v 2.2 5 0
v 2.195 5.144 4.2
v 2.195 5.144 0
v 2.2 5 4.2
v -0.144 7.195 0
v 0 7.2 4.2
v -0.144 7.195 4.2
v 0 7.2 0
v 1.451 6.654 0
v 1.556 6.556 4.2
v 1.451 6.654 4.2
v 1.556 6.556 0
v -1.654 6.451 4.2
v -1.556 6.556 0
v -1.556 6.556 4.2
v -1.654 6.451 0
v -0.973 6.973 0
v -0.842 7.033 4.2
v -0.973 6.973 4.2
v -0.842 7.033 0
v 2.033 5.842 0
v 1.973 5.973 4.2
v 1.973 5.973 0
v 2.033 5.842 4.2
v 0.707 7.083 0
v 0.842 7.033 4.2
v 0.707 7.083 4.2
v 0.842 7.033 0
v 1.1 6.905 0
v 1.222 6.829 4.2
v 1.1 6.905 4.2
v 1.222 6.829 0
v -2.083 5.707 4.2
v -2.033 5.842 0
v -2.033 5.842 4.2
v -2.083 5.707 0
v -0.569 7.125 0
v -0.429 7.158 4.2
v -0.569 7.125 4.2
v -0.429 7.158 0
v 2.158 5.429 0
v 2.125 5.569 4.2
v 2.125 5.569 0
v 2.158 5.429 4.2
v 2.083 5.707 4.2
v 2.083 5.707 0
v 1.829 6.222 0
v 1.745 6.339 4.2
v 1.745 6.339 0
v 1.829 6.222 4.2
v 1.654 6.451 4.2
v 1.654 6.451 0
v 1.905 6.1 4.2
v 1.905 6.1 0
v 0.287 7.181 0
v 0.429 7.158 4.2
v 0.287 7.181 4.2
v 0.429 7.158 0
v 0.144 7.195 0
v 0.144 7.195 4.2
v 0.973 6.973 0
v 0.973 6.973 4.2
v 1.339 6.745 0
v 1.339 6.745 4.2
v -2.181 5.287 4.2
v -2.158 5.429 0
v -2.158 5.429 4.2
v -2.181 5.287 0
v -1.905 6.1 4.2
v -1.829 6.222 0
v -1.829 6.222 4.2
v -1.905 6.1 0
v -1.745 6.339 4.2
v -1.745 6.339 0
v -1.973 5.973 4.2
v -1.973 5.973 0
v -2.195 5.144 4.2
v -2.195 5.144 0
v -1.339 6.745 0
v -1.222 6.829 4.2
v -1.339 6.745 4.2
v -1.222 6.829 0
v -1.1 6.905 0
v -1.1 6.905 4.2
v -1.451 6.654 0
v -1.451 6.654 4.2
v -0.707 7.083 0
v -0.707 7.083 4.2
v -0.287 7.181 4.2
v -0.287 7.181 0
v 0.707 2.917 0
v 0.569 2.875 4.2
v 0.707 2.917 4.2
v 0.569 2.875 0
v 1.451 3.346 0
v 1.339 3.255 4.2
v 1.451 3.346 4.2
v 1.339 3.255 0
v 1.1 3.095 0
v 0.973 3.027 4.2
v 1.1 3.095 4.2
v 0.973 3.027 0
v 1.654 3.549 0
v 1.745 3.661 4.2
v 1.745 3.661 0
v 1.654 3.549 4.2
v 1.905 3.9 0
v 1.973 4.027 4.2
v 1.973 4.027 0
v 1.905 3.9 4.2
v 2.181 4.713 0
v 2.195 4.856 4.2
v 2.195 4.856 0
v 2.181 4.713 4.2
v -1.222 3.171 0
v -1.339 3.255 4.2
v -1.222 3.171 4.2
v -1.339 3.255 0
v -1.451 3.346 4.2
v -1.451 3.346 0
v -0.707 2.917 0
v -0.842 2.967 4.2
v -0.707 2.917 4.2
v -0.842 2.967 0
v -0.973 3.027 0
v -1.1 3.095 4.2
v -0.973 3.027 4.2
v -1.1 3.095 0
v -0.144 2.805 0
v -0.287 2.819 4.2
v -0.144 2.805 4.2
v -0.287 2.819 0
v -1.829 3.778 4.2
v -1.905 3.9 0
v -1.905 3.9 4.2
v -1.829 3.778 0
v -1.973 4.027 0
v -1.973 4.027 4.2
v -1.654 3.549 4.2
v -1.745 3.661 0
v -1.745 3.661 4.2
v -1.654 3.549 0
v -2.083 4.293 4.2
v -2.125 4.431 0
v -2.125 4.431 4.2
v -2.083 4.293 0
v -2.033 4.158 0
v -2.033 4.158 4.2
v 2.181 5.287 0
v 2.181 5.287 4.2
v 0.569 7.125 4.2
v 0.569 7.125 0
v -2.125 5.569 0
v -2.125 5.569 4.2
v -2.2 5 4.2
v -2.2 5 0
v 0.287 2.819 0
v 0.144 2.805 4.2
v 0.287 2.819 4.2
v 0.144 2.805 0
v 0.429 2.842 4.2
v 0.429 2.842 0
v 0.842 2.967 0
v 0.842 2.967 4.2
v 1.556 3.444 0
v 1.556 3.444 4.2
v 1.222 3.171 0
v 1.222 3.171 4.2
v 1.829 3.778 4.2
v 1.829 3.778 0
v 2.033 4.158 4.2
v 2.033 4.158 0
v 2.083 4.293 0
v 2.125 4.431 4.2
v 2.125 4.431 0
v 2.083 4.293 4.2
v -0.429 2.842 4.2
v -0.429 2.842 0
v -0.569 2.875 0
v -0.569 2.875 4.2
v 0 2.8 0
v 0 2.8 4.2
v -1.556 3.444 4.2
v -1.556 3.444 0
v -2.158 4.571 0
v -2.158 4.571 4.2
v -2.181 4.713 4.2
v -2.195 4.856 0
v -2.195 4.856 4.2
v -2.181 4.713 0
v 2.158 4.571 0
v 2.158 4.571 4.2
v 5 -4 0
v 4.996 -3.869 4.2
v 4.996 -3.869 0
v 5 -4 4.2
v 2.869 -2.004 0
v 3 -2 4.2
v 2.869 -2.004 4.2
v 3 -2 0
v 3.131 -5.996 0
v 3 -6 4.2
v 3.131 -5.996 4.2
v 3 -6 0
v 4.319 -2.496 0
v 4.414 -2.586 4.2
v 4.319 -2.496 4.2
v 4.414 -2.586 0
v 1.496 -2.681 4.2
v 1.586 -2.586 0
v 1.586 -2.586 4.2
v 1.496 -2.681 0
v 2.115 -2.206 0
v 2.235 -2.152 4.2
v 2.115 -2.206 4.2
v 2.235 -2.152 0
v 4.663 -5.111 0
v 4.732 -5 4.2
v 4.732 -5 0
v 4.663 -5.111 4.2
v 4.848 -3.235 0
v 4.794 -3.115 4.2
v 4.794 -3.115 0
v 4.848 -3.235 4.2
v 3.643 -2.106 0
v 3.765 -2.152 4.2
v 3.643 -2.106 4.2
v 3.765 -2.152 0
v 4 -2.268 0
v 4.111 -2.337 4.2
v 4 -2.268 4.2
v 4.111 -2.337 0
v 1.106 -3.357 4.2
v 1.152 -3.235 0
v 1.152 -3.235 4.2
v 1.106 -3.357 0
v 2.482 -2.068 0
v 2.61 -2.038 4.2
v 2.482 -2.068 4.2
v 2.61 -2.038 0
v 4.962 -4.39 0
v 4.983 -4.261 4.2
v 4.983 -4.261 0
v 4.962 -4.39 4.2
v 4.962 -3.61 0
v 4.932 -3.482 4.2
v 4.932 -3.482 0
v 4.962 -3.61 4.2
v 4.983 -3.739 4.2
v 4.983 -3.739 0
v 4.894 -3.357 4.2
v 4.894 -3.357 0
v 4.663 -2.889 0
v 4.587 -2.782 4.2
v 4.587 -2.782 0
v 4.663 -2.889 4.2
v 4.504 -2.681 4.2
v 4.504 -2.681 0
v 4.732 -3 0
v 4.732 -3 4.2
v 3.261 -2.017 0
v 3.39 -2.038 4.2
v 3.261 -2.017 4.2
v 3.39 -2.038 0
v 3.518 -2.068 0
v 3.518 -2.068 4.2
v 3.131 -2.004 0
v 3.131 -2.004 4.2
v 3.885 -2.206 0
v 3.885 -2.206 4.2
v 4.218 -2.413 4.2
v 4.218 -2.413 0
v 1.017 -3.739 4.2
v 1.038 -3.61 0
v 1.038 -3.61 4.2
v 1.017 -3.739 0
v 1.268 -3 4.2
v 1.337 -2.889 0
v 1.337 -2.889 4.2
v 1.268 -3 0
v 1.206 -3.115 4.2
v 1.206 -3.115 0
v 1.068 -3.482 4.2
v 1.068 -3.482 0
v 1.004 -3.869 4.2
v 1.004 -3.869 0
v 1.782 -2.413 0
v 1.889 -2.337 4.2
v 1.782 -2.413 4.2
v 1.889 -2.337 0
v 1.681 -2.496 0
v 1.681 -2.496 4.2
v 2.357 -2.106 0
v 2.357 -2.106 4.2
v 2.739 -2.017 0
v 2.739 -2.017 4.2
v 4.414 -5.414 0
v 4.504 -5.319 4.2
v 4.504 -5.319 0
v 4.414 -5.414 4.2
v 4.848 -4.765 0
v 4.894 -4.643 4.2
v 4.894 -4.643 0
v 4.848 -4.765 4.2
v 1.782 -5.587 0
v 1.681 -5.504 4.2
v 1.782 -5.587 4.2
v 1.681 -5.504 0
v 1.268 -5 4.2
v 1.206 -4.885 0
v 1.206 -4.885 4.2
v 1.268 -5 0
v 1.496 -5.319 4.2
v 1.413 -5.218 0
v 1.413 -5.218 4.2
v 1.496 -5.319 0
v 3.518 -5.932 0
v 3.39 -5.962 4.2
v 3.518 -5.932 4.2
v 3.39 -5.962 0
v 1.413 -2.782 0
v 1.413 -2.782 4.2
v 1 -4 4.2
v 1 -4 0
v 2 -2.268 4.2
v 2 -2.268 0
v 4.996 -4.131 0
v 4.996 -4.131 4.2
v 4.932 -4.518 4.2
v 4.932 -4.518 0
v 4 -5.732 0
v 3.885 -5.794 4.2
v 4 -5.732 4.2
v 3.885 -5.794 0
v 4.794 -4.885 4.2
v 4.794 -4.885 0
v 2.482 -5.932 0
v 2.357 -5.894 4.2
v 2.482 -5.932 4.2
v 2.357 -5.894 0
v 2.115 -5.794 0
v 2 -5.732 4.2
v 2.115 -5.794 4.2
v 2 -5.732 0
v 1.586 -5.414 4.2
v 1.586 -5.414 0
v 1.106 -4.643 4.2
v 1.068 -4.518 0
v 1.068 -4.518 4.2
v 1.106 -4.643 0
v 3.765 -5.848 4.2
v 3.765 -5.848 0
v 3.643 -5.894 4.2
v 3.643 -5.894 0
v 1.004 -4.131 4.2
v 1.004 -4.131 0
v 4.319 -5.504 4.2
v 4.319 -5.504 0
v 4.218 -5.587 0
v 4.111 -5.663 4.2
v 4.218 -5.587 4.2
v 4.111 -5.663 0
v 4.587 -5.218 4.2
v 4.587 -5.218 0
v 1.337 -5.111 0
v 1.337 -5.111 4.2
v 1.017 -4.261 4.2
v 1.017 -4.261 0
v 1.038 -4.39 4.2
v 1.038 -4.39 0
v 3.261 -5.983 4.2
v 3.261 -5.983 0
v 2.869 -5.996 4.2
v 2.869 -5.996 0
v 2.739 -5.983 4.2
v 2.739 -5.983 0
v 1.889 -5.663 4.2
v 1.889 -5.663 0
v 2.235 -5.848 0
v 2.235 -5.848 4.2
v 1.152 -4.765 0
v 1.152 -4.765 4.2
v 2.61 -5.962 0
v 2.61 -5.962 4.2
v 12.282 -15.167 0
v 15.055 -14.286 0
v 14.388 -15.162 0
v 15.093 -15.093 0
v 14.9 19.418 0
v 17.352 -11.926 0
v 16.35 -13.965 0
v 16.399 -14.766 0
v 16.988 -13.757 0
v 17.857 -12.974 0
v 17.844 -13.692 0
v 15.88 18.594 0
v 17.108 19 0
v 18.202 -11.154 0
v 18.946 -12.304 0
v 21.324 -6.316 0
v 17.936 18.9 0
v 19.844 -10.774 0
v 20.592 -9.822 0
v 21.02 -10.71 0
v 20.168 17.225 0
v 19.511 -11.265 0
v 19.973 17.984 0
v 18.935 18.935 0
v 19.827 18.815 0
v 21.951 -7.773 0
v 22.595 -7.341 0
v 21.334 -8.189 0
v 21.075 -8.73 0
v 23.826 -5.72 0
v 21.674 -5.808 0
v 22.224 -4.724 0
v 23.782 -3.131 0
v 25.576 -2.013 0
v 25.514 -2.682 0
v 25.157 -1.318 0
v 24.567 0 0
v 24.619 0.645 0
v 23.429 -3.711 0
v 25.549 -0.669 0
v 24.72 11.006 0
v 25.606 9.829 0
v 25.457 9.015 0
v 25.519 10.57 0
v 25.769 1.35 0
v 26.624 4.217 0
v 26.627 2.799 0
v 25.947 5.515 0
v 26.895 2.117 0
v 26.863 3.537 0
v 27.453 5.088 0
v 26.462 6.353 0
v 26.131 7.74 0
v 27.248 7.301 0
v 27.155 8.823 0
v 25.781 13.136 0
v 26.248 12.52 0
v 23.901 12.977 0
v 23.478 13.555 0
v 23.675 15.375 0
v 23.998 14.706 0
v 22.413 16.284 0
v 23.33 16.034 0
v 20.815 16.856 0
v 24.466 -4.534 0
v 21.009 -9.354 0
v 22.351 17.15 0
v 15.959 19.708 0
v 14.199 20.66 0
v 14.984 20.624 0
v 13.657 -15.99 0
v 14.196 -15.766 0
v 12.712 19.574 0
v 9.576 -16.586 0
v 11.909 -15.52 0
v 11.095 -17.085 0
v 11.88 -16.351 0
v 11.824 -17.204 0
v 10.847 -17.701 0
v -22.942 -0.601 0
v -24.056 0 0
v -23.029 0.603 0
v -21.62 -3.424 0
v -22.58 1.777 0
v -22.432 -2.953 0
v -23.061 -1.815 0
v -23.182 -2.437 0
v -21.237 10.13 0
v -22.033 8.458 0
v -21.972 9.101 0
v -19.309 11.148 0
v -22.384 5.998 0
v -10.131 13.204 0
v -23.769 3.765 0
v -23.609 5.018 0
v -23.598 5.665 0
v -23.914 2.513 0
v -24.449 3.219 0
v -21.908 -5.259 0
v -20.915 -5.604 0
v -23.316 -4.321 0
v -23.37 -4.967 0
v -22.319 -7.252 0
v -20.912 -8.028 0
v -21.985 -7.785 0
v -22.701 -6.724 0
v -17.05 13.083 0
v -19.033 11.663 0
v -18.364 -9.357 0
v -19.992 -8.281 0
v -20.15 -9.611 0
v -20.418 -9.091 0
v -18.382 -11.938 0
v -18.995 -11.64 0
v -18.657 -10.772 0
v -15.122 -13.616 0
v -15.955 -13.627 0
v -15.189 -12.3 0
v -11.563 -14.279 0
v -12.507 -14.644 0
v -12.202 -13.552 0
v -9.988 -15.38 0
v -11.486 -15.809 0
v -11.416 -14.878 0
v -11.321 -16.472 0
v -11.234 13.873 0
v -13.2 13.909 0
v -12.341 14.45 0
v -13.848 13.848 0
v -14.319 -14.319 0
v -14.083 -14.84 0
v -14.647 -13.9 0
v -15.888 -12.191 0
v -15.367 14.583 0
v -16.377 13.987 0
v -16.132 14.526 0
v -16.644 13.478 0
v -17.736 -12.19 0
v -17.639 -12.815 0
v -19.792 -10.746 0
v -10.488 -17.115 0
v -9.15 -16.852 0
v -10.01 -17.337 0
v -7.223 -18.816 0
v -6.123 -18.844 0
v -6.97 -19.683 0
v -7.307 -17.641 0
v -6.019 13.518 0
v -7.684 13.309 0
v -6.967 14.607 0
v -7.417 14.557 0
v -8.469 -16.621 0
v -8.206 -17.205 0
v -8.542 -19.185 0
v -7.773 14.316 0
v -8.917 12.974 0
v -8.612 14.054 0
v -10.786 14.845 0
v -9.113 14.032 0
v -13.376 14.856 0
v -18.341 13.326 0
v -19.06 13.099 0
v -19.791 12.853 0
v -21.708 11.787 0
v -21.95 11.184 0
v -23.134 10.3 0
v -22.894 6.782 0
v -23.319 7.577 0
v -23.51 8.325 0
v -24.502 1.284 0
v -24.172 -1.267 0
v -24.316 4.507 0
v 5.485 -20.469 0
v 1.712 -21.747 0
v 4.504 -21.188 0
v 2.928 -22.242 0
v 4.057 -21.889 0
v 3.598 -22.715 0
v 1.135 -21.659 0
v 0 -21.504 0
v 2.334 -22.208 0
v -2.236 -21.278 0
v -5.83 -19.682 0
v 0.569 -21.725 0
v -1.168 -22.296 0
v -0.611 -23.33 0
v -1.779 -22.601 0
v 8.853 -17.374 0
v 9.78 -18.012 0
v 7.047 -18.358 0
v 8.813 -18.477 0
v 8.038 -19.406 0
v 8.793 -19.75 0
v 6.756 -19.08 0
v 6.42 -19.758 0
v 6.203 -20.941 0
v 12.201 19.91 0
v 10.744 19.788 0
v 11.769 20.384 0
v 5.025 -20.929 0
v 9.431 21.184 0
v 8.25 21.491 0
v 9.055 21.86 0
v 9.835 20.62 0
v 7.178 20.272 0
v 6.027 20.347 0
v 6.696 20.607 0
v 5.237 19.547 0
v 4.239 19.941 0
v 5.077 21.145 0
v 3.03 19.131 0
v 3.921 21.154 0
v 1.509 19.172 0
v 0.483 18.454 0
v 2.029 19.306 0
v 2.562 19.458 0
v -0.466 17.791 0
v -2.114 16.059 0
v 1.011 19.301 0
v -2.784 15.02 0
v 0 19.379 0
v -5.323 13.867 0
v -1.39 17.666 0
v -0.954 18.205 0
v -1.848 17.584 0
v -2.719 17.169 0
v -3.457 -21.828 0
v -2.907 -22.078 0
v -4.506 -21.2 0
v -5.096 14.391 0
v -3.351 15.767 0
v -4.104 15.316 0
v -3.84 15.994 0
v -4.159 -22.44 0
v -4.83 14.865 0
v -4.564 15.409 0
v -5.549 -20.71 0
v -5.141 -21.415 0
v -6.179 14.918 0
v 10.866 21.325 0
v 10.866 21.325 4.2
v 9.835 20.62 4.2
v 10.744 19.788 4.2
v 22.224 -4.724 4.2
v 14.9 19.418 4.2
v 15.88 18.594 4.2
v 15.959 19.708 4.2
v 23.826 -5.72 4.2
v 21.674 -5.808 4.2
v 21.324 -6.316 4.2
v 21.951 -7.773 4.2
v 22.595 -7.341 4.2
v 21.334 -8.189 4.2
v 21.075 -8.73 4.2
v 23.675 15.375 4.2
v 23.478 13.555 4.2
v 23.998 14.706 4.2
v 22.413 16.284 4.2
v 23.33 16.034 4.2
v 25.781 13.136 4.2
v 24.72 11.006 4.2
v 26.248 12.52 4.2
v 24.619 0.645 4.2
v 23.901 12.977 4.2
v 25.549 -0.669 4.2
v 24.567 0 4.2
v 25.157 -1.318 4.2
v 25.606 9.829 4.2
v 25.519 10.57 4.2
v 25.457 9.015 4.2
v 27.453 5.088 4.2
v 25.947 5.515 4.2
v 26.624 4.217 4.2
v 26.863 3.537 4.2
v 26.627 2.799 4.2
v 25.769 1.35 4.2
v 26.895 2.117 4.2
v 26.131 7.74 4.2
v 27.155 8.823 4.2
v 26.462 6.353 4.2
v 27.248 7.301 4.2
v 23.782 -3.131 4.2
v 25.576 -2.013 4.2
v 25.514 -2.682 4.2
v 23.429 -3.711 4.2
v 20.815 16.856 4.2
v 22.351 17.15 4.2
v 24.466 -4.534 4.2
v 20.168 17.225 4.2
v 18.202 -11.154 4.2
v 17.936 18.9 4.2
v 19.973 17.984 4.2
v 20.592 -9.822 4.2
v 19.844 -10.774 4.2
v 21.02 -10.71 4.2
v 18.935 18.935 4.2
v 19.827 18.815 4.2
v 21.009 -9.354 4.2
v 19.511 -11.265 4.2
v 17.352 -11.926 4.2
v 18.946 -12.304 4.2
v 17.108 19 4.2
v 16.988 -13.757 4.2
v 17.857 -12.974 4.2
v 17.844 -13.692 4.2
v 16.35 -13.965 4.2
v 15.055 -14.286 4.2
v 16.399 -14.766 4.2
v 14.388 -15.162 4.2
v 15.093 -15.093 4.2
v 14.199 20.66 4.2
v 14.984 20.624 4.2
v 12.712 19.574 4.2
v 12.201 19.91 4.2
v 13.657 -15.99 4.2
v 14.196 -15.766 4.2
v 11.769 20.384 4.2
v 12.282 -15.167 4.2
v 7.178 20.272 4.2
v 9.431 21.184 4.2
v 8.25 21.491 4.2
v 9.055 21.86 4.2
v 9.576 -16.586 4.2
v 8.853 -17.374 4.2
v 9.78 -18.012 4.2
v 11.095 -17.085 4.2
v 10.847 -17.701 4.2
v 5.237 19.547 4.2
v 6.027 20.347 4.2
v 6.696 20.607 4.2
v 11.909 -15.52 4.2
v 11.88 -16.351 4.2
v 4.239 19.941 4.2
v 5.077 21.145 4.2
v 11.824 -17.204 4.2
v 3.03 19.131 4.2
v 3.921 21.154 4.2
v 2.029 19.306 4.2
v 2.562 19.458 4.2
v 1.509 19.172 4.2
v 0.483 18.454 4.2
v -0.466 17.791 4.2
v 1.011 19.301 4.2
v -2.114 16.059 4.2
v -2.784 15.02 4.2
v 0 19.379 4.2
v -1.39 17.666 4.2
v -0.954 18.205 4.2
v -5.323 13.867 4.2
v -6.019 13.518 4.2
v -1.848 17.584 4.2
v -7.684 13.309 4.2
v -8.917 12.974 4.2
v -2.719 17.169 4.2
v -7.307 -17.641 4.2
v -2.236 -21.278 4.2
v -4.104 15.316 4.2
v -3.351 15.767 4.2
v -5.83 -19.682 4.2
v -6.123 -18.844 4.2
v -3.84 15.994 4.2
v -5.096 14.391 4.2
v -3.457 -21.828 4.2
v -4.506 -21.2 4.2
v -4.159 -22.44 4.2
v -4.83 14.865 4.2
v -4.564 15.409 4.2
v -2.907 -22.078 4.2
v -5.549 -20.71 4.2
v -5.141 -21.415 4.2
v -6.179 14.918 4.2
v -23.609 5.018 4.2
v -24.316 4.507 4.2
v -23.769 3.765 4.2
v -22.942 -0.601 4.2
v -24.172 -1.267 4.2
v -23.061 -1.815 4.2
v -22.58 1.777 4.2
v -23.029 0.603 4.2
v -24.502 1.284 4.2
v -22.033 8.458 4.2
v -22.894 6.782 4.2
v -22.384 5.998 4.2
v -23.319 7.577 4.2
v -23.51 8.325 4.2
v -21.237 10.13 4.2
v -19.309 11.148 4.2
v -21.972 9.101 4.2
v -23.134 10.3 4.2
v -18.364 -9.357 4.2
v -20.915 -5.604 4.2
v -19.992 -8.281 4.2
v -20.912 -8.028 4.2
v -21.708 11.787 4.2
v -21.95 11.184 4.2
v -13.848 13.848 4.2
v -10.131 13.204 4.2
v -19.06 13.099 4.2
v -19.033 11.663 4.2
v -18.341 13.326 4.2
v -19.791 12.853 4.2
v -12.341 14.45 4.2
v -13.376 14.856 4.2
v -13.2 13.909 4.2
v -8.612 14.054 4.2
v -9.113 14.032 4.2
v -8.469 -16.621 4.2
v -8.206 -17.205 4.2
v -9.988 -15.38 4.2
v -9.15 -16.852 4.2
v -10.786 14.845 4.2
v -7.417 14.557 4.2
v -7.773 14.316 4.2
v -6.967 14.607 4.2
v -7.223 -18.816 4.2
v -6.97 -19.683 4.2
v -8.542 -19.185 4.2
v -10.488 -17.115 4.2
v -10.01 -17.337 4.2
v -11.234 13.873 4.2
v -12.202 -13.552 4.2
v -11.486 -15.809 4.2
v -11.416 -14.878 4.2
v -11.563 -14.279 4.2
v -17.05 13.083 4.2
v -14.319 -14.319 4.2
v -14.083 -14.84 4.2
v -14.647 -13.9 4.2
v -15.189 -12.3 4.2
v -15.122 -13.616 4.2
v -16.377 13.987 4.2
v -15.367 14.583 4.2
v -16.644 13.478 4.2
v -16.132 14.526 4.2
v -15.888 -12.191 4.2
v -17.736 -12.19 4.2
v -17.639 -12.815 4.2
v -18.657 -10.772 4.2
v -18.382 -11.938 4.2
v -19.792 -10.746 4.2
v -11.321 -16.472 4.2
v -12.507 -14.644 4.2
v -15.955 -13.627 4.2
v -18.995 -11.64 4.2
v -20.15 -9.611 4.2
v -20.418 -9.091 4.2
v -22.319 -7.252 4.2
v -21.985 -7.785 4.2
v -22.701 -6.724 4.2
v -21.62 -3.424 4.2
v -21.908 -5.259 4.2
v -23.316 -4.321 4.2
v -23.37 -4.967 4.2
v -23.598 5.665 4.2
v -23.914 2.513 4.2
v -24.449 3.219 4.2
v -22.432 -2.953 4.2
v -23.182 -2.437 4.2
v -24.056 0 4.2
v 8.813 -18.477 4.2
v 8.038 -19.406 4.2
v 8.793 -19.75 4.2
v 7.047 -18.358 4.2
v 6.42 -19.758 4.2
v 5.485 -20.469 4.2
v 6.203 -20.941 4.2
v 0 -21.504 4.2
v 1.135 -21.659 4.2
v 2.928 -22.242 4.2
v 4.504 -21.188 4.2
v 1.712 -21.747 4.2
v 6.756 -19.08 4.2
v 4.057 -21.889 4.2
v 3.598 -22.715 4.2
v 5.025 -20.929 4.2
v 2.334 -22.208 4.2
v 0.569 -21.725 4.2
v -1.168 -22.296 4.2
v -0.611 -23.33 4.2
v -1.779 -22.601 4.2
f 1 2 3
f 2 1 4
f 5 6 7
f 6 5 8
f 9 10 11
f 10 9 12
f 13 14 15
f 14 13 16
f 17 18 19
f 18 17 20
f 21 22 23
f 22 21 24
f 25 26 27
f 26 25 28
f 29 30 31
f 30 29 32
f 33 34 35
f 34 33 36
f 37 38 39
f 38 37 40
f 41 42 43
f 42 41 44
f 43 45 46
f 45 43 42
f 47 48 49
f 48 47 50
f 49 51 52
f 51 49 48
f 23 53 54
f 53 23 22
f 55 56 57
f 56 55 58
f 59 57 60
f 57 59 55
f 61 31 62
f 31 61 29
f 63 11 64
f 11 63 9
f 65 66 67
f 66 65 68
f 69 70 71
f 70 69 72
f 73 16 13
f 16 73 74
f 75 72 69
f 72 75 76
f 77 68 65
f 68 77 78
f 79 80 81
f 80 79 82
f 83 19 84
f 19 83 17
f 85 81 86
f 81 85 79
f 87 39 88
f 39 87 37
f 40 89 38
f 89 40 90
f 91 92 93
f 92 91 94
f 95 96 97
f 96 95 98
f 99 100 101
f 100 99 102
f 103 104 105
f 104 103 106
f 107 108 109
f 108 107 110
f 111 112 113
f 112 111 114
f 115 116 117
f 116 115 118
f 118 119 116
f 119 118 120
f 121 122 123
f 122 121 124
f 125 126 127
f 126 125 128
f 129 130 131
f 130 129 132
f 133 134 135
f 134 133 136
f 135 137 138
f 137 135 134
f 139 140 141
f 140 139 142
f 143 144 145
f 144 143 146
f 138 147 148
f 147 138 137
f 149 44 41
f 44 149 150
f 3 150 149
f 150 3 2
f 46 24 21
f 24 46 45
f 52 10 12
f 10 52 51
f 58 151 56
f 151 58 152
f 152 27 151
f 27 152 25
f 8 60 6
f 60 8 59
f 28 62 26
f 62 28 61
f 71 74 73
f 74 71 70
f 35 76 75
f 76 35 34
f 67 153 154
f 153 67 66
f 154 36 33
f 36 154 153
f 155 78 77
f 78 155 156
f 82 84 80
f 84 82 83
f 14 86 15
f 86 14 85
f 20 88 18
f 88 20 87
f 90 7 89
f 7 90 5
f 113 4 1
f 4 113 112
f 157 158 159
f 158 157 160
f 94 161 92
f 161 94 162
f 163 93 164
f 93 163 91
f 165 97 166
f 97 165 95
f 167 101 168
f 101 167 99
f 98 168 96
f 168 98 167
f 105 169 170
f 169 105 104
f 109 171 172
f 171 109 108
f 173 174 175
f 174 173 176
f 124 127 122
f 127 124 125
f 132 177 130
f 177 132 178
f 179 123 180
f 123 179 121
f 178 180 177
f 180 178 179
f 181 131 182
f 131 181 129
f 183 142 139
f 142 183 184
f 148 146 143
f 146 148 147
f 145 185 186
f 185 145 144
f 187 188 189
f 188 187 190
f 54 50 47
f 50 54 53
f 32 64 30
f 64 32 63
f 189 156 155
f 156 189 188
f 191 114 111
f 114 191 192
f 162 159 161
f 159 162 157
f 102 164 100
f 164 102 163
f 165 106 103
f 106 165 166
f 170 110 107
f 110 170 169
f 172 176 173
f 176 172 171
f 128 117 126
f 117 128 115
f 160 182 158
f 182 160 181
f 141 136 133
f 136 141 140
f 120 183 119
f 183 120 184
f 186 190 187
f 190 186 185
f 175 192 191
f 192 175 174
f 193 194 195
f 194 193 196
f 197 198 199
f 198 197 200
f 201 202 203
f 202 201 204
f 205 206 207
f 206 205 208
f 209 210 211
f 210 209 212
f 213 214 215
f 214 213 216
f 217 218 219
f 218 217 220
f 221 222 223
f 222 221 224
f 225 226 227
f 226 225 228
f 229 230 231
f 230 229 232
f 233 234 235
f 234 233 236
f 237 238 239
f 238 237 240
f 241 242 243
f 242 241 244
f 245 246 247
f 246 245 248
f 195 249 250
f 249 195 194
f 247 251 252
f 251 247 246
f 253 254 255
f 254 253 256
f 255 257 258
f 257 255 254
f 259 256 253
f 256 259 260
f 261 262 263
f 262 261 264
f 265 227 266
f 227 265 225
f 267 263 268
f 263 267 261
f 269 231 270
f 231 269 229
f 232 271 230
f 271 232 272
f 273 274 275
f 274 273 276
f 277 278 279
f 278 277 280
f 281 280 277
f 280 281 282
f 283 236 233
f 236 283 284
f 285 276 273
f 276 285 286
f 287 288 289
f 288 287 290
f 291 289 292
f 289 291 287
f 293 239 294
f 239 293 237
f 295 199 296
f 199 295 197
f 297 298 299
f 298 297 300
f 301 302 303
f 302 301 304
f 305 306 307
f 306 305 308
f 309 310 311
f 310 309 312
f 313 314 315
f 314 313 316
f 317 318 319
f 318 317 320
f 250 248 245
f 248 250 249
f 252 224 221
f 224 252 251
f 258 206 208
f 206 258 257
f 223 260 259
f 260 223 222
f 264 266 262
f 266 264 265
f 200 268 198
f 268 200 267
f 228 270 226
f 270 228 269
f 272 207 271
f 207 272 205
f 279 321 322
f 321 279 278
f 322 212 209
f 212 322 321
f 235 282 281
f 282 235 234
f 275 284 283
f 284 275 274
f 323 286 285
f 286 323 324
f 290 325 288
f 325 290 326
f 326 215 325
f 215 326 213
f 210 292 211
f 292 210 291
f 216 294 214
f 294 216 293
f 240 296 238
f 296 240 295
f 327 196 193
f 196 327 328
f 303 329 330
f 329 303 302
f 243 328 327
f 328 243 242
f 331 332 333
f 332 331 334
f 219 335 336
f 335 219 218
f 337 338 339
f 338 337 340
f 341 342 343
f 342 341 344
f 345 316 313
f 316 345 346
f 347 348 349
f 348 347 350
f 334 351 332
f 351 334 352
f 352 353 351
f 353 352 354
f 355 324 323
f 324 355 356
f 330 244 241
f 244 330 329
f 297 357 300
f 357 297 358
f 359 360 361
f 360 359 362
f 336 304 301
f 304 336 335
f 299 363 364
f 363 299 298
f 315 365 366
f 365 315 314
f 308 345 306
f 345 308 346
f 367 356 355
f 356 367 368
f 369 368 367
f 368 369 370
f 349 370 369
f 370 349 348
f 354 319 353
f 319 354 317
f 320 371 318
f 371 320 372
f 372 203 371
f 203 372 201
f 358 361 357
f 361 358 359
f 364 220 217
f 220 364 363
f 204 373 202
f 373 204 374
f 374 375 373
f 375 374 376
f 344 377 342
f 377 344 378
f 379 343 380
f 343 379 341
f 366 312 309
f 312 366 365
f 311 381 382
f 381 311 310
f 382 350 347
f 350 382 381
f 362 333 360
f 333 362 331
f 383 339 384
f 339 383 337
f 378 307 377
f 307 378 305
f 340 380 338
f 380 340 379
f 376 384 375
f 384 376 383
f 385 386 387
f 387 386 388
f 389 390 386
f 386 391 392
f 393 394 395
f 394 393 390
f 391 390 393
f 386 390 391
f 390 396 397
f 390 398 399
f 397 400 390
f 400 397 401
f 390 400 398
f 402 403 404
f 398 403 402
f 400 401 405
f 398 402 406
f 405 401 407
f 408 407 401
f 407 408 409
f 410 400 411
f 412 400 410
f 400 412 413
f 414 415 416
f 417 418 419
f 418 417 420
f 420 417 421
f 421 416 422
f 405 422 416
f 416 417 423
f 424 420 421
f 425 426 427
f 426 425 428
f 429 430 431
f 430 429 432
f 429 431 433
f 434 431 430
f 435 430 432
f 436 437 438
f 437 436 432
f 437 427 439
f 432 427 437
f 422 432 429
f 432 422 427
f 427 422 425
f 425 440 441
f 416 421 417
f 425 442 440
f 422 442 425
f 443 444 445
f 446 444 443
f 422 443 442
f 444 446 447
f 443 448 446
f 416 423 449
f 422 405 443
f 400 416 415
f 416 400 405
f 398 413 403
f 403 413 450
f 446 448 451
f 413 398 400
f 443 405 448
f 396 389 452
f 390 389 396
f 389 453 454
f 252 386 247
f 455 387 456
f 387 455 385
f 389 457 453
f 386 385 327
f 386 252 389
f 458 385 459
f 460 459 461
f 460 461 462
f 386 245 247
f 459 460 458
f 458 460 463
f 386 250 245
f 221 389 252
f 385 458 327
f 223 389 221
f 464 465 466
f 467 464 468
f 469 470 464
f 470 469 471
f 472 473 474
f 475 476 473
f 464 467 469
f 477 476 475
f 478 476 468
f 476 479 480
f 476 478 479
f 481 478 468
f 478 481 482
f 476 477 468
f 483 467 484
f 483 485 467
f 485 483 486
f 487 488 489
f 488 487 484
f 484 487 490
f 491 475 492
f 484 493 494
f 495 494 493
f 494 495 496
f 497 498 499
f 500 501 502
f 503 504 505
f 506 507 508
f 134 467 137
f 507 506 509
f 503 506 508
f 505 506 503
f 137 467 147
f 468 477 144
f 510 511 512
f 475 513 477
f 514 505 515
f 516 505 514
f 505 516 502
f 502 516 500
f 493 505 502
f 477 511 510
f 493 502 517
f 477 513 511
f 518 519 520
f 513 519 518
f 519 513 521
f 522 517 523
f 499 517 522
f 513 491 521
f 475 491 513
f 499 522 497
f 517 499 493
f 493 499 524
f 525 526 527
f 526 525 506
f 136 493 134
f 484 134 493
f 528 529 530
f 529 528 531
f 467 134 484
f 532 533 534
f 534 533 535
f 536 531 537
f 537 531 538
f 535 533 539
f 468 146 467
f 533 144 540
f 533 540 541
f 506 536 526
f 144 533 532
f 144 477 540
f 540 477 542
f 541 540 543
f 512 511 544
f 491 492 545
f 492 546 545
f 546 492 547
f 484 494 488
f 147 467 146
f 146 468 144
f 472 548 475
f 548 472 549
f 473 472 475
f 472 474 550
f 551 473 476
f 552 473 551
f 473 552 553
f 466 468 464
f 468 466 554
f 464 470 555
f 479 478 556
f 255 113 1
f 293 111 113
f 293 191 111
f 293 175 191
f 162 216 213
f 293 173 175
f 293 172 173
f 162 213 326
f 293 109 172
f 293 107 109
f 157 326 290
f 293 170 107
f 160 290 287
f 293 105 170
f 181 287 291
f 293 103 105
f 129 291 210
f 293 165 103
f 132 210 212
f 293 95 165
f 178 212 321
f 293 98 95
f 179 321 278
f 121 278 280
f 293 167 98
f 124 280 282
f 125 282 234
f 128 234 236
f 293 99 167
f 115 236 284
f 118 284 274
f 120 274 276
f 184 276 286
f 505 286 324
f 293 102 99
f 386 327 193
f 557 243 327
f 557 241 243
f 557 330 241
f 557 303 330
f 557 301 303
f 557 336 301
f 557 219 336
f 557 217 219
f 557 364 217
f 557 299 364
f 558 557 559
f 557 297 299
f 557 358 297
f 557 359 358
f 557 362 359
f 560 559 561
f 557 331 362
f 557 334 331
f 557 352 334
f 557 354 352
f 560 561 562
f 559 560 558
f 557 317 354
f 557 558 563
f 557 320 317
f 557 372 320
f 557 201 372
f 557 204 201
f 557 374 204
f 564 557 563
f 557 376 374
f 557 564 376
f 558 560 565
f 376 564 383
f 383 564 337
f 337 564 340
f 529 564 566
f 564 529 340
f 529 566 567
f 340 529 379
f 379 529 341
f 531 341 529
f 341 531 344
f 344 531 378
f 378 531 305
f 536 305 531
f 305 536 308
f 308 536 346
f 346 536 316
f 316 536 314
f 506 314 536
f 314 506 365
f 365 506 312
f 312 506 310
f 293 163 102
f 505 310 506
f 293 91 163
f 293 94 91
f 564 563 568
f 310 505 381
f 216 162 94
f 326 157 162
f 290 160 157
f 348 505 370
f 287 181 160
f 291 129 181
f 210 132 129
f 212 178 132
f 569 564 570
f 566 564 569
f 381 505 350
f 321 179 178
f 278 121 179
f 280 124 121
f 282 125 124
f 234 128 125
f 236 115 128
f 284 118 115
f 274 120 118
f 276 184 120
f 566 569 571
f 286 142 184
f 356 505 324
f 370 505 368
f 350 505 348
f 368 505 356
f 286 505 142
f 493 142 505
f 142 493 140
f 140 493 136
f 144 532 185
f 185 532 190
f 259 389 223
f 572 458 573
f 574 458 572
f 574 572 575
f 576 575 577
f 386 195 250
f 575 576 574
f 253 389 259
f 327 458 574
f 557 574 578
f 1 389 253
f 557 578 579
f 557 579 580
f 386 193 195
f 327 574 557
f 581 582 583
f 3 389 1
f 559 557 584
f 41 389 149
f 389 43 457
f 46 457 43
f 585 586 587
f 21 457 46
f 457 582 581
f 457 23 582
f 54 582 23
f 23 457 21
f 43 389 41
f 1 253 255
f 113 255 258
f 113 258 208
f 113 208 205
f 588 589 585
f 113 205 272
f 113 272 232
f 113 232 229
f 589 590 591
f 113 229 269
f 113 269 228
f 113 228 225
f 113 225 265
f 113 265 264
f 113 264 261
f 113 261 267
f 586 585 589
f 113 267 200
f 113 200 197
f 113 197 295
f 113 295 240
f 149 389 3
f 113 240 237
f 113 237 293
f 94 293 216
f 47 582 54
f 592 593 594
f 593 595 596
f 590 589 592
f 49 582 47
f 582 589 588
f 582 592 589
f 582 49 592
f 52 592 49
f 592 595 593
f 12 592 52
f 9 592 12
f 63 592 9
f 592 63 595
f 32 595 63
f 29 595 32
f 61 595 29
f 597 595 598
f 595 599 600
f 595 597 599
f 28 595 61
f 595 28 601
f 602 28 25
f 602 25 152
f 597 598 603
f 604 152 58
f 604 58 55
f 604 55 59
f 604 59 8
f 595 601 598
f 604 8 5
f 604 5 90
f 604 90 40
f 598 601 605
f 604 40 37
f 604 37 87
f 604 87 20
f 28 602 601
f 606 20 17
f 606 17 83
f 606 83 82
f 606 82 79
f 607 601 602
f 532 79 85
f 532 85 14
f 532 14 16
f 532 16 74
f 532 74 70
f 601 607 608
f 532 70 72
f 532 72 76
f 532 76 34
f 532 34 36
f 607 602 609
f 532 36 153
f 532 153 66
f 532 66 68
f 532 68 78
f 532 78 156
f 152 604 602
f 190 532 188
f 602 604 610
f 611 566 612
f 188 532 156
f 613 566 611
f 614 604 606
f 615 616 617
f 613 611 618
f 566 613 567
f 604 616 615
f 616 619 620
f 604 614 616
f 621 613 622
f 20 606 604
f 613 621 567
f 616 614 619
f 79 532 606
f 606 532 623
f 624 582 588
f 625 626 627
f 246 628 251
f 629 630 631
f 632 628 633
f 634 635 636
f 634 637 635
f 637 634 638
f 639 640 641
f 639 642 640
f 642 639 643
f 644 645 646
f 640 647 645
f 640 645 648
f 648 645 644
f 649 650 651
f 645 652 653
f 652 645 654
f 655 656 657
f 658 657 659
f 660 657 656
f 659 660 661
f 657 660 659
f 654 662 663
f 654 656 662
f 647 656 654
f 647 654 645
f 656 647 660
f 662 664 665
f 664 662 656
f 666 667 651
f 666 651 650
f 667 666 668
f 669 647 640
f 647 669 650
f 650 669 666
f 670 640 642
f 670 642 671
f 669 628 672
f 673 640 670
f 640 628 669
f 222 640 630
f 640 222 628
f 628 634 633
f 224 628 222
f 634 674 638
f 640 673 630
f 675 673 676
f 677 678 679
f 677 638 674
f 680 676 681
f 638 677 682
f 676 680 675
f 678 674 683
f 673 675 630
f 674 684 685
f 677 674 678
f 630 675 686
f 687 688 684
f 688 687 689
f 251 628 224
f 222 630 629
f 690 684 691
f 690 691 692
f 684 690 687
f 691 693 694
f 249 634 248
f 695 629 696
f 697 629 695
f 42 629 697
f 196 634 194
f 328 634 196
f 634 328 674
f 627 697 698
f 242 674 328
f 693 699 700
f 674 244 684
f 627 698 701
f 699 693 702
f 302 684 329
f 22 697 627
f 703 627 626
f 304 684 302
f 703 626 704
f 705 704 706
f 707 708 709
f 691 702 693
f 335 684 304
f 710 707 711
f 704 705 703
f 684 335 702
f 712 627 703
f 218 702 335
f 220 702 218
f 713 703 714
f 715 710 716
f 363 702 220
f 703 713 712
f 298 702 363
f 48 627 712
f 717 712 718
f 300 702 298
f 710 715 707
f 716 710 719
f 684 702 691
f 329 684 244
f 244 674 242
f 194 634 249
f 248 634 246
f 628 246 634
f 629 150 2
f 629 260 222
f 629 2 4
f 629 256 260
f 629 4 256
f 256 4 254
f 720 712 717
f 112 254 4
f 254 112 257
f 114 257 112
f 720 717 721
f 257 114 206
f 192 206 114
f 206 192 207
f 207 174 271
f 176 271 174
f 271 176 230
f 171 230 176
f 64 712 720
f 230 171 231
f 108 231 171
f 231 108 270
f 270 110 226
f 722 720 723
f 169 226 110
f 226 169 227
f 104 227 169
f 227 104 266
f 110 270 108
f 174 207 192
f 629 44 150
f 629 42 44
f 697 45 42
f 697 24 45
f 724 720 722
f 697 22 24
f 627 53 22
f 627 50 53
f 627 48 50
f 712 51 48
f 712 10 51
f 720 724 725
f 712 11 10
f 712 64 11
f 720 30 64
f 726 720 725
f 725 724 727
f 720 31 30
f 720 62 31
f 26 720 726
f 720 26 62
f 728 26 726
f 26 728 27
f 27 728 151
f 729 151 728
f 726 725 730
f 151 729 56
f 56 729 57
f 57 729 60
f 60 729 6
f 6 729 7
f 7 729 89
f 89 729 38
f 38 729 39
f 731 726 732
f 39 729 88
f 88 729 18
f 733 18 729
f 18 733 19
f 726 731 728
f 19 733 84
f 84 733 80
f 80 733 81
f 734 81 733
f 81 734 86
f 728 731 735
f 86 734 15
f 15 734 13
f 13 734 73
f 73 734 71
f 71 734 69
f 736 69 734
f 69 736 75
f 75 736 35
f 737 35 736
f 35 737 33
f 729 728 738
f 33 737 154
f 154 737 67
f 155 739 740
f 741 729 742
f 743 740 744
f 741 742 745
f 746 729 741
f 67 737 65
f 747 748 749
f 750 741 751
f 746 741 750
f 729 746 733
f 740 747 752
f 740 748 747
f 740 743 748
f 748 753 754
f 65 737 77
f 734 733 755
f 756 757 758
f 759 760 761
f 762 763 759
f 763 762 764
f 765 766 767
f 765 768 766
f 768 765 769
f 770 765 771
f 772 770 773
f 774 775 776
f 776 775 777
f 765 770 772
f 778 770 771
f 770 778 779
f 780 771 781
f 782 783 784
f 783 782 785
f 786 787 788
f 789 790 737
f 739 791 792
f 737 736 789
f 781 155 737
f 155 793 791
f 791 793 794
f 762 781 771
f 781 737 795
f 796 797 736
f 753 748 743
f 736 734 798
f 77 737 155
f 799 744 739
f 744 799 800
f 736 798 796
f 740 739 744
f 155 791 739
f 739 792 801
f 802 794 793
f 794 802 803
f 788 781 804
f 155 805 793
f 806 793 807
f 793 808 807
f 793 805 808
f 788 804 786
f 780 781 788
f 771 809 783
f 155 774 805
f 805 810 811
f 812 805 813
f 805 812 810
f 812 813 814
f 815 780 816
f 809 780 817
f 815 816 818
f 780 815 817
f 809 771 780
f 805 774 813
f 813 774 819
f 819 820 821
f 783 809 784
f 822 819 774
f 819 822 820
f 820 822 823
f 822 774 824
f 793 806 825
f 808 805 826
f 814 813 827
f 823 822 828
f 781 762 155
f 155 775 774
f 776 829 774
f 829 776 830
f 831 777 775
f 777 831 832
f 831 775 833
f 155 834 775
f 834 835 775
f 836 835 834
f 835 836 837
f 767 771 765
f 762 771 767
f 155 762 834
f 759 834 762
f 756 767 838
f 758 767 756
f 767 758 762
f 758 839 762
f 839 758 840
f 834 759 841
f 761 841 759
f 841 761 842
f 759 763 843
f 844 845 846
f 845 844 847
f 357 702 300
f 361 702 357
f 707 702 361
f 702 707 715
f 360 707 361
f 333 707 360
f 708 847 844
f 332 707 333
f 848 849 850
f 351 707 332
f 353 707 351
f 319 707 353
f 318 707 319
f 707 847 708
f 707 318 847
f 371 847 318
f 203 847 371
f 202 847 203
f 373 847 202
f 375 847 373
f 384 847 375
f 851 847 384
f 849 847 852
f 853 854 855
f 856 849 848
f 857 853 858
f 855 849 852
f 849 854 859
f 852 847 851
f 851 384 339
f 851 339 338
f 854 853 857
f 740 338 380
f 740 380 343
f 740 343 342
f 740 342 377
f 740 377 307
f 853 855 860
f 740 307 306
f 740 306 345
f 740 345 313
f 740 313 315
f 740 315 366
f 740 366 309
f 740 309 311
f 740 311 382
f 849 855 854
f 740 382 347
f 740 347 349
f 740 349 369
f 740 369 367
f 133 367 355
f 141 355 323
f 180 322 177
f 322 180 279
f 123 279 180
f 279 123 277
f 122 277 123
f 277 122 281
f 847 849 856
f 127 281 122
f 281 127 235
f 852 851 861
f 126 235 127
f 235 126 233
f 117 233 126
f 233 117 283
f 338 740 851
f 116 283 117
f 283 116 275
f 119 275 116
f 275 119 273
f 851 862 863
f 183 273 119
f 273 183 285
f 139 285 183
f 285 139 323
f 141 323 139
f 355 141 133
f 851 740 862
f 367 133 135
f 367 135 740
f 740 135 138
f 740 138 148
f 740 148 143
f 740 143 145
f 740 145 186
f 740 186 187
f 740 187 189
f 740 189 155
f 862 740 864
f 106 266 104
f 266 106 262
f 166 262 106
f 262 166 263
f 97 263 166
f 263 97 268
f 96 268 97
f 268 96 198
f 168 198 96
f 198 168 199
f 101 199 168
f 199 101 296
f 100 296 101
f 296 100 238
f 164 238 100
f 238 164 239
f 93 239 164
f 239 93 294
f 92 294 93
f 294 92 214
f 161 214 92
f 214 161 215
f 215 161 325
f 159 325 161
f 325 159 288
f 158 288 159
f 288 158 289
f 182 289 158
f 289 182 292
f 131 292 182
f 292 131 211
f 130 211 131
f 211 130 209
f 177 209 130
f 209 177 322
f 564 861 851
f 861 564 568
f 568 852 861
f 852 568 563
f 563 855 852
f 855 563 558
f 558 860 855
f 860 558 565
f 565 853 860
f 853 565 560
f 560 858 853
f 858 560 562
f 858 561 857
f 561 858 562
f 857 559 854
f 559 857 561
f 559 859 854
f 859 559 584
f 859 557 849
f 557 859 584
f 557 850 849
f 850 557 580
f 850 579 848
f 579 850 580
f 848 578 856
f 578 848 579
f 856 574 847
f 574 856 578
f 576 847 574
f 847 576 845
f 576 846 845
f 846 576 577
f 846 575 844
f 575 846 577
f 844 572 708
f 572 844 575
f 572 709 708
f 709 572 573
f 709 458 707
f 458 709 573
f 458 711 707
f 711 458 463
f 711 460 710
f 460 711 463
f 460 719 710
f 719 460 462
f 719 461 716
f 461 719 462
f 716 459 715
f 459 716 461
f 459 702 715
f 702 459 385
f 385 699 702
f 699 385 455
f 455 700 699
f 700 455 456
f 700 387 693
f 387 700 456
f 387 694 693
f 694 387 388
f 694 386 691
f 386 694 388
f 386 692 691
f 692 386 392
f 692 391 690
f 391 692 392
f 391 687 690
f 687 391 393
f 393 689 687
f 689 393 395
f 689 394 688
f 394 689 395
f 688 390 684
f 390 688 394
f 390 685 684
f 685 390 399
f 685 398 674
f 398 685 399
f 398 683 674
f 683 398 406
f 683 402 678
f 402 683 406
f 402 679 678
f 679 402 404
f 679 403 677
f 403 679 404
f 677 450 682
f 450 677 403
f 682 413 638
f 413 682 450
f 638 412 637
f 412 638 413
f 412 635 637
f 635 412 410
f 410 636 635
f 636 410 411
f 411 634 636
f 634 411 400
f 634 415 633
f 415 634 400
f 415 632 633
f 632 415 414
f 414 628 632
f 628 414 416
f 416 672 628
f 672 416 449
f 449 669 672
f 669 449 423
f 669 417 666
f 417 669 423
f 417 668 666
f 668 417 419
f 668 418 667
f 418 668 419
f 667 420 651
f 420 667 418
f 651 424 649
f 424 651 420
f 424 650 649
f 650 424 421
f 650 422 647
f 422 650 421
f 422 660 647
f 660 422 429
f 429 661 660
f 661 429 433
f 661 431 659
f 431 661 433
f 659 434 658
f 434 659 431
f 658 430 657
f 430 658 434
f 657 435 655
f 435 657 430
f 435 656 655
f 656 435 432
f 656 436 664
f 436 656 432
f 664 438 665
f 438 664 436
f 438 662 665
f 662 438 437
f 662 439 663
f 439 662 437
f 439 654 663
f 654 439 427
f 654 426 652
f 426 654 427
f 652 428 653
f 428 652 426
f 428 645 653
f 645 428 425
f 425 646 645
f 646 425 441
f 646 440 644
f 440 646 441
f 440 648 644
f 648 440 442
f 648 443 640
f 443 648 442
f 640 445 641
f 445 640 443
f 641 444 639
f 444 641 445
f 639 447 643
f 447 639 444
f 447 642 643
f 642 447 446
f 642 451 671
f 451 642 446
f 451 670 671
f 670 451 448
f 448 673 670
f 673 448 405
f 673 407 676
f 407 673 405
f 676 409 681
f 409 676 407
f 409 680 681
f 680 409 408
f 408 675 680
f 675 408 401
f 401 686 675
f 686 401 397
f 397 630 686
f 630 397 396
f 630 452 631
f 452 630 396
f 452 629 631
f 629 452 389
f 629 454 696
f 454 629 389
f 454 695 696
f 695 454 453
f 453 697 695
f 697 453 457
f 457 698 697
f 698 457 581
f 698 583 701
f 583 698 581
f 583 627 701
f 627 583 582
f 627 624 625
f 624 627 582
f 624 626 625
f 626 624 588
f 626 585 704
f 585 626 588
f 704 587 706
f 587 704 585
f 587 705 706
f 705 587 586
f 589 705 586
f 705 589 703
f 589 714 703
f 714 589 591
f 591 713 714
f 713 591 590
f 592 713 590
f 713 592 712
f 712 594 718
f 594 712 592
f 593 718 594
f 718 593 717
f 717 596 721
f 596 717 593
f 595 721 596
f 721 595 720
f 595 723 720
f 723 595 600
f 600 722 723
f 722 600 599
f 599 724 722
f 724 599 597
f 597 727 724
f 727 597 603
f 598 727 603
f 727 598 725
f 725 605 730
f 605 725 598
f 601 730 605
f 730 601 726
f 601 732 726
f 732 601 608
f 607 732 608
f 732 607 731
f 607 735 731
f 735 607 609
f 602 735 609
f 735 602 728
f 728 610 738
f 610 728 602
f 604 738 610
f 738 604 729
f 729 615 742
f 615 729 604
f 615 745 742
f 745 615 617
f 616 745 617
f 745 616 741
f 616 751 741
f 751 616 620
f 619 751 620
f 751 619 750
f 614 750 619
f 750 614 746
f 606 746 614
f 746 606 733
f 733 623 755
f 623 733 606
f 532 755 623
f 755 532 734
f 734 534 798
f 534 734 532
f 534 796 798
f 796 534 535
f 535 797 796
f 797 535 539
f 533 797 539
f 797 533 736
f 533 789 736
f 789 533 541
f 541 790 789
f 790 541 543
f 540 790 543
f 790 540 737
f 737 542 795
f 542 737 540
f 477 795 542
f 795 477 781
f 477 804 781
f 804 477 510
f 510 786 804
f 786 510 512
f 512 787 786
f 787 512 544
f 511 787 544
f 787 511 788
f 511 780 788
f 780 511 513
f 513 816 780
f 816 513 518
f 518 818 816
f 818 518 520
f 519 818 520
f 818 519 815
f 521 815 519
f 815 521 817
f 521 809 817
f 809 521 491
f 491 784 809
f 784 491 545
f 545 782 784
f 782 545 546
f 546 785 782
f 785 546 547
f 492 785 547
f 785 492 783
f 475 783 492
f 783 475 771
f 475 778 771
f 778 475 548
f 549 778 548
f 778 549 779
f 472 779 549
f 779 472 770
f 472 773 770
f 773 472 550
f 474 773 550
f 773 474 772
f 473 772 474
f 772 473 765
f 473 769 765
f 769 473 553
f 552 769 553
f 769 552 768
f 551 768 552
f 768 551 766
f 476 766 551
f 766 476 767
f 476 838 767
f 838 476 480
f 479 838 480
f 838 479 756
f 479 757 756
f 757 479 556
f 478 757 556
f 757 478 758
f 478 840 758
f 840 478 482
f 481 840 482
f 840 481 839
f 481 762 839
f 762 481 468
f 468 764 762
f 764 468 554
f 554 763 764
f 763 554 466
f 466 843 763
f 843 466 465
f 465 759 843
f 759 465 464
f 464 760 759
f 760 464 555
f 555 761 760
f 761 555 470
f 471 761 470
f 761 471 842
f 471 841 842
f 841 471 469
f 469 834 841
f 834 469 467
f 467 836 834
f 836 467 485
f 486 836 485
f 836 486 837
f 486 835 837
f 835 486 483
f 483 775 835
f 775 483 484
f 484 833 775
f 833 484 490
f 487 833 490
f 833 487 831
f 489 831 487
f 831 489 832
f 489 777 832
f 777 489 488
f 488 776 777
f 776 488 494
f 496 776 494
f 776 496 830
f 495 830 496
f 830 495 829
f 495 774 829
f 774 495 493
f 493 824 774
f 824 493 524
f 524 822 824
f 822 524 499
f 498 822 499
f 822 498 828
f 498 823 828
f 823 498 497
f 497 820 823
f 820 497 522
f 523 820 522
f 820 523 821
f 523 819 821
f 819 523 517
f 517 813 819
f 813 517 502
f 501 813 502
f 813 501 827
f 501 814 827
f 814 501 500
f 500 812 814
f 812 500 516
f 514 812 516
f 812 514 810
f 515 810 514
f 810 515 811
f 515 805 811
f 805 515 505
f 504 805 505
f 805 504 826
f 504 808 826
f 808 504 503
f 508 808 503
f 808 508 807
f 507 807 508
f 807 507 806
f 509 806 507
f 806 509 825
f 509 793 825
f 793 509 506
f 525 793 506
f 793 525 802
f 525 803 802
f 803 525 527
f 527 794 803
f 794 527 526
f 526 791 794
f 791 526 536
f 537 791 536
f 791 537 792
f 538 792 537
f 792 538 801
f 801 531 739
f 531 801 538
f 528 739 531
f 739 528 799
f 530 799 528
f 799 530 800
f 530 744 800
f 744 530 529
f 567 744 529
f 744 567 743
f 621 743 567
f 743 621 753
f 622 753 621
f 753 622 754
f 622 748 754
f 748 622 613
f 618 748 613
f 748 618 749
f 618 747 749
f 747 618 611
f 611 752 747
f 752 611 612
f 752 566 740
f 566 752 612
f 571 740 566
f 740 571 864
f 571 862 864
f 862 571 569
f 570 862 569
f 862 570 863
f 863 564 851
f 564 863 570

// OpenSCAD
$fn=96;
thickness_mm = 4.2;
holes = [[0.0, 5.0, 2.2], [3.0, -4.0, 2.0]];
pts = [[24.5672, 0.0], [24.6194, 0.6447], [25.7689, 1.3505], [26.895, 2.1167], [26.6266, 2.7986], [26.8629, 3.5366], [26.6245, 4.2169], [27.4528, 5.0881], [25.9469, 5.5152], [26.4621, 6.353], [27.2484, 7.3012], [26.131, 7.7404], [27.1553, 8.8233], [25.4568, 9.0147], [25.6056, 9.8291], [25.5186, 10.5702], [24.7198, 11.0059], [26.2484, 12.5198], [25.781, 13.1361], [23.9011, 12.9772], [23.4784, 13.5553], [23.9982, 14.7061], [23.675, 15.3747], [23.3297, 16.034], [22.4126, 16.2837], [22.3506, 17.1502], [20.8152, 16.8558], [20.1679, 17.225], [19.9732, 17.984], [19.8267, 18.8148], [18.9349, 18.9349], [17.9355, 18.9001], [17.108, 19.0003], [15.8803, 18.5935], [15.9593, 19.7081], [14.8999, 19.4179], [14.9841, 20.6239], [14.1993, 20.6602], [12.7116, 19.5741], [12.2007, 19.9097], [11.7687, 20.384], [10.7443, 19.7885], [10.8657, 21.3252], [9.8354, 20.6204], [9.4315, 21.1836], [9.0546, 21.8597], [8.2497, 21.4912], [7.1785, 20.2715], [6.6955, 20.6067], [6.027, 20.3469], [5.2375, 19.5466], [5.0766, 21.1454], [4.2386, 19.9412], [3.9206, 21.1535], [3.0301, 19.1314], [2.5617, 19.4577], [2.0291, 19.3056], [1.5089, 19.1724], [1.0115, 19.3008], [0.4832, 18.4536], [0.0, 19.3789], [-0.4659, 17.7909], [-0.9541, 18.2051], [-1.3904, 17.6664], [-1.8482, 17.5842], [-2.1142, 16.0591], [-2.7192, 17.1686], [-2.7839, 15.0205], [-3.3513, 15.7667], [-3.8398, 15.994], [-4.104, 15.3163], [-4.5645, 15.4094], [-4.8298, 14.8646], [-5.0962, 14.3913], [-5.3231, 13.8672], [-6.1791, 14.9177], [-6.0186, 13.5179], [-6.9672, 14.6071], [-7.417, 14.5568], [-7.7731, 14.3162], [-7.6837, 13.3086], [-8.6125, 14.0543], [-9.1126, 14.0322], [-8.917, 12.9743], [-10.7855, 14.845], [-10.1314, 13.2035], [-11.2339, 13.8728], [-12.3414, 14.4499], [-13.376, 14.8555], [-13.1995, 13.9094], [-13.8475, 13.8475], [-15.367, 14.5827], [-16.1325, 14.5258], [-16.3772, 13.9874], [-16.6443, 13.4783], [-17.05, 13.0829], [-18.3414, 13.3258], [-19.0595, 13.0992], [-19.7914, 12.8527], [-19.0326, 11.6632], [-19.3088, 11.1479], [-21.7085, 11.7868], [-21.9499, 11.1841], [-21.237, 10.1295], [-23.1343, 10.3001], [-21.9725, 9.1013], [-22.0333, 8.4578], [-23.5097, 8.3252], [-23.3189, 7.5768], [-22.8944, 6.7816], [-22.3838, 5.9977], [-23.5978, 5.6653], [-23.6094, 5.0183], [-24.316, 4.5067], [-23.7688, 3.7646], [-24.4489, 3.2188], [-23.9144, 2.5135], [-22.5797, 1.7771], [-24.5025, 1.2841], [-23.0287, 0.603], [-24.0564, 0.0], [-22.9421, -0.6008], [-24.1715, -1.2668], [-23.0609, -1.8149], [-23.1824, -2.4366], [-22.4325, -2.9533], [-21.62, -3.4243], [-23.3165, -4.3215], [-23.37, -4.9674], [-21.9075, -5.2595], [-20.9154, -5.6043], [-22.7014, -6.7245], [-22.3189, -7.2519], [-21.9846, -7.7851], [-20.9125, -8.0276], [-19.992, -8.281], [-20.4178, -9.0906], [-20.1497, -9.6109], [-18.3643, -9.3571], [-19.7924, -10.7464], [-18.6568, -10.7715], [-18.9949, -11.6401], [-18.3822, -11.9376], [-17.7364, -12.1899], [-17.6386, -12.8152], [-15.8878, -12.1911], [-15.1889, -12.2997], [-15.9549, -13.6268], [-15.1215, -13.6155], [-14.6471, -13.8996], [-14.3192, -14.3192], [-14.083, -14.8404], [-12.2022, -13.5519], [-12.5074, -14.6443], [-11.5627, -14.2787], [-11.4162, -14.8778], [-11.486, -15.8092], [-11.3211, -16.4723], [-9.9882, -15.3804], [-10.488, -17.1149], [-10.0095, -17.3369], [-9.1501, -16.8524], [-8.469, -16.6214], [-8.2065, -17.2053], [-8.5417, -19.1849], [-7.307, -17.6406], [-7.2228, -18.8161], [-6.9703, -19.6834], [-6.1228, -18.8441], [-5.8302, -19.6825], [-5.5493, -20.7105], [-5.1413, -21.415], [-4.5061, -21.1996], [-4.1589, -22.4396], [-3.4571, -21.8275], [-2.9066, -22.0775], [-2.2364, -21.2781], [-1.7787, -22.601], [-1.1685, -22.2962], [-0.6109, -23.3299], [-0.0, -21.5043], [0.5689, -21.7247], [1.1351, -21.6587], [1.7116, -21.7474], [2.3341, -22.2075], [2.9283, -22.2423], [3.5978, -22.7154], [4.0569, -21.8889], [4.5036, -21.1879], [5.0246, -20.9289], [5.4846, -20.4688], [6.203, -20.9409], [6.4199, -19.7585], [6.7565, -19.0799], [7.047, -18.3581], [8.0382, -19.4059], [8.7932, -19.7499], [8.8129, -18.4767], [8.8527, -17.3745], [9.7797, -18.0119], [9.5756, -16.5855], [10.8471, -17.7009], [11.0953, -17.0852], [11.8241, -17.2042], [11.8798, -16.3512], [11.9087, -15.5197], [12.2823, -15.1674], [13.657, -15.9903], [14.1957, -15.7659], [14.3879, -15.1617], [15.0928, -15.0928], [15.0548, -14.2865], [16.3988, -14.7655], [16.3505, -13.9646], [16.9883, -13.7568], [17.844, -13.6922], [17.857, -12.9739], [17.352, -11.9257], [18.9463, -12.3039], [18.2023, -11.1544], [19.5114, -11.2649], [19.8439, -10.7744], [21.0201, -10.7103], [20.5922, -9.822], [21.0094, -9.354], [21.0753, -8.7297], [21.3342, -8.1894], [21.9514, -7.7734], [22.5947, -7.3415], [21.3242, -6.3165], [21.6739, -5.8075], [23.8257, -5.72], [22.224, -4.7239], [24.466, -4.5345], [23.4291, -3.7108], [23.7818, -3.1309], [25.5141, -2.6816], [25.5761, -2.0129], [25.1571, -1.3184], [25.549, -0.669]];
module body(){
  linear_extrude(height=thickness_mm) polygon(points=pts);
}
difference(){
  body();
  for(h=holes){
    translate([h[0], h[1], -1]) cylinder(h=thickness_mm+2, r=h[2]);
  }
}
